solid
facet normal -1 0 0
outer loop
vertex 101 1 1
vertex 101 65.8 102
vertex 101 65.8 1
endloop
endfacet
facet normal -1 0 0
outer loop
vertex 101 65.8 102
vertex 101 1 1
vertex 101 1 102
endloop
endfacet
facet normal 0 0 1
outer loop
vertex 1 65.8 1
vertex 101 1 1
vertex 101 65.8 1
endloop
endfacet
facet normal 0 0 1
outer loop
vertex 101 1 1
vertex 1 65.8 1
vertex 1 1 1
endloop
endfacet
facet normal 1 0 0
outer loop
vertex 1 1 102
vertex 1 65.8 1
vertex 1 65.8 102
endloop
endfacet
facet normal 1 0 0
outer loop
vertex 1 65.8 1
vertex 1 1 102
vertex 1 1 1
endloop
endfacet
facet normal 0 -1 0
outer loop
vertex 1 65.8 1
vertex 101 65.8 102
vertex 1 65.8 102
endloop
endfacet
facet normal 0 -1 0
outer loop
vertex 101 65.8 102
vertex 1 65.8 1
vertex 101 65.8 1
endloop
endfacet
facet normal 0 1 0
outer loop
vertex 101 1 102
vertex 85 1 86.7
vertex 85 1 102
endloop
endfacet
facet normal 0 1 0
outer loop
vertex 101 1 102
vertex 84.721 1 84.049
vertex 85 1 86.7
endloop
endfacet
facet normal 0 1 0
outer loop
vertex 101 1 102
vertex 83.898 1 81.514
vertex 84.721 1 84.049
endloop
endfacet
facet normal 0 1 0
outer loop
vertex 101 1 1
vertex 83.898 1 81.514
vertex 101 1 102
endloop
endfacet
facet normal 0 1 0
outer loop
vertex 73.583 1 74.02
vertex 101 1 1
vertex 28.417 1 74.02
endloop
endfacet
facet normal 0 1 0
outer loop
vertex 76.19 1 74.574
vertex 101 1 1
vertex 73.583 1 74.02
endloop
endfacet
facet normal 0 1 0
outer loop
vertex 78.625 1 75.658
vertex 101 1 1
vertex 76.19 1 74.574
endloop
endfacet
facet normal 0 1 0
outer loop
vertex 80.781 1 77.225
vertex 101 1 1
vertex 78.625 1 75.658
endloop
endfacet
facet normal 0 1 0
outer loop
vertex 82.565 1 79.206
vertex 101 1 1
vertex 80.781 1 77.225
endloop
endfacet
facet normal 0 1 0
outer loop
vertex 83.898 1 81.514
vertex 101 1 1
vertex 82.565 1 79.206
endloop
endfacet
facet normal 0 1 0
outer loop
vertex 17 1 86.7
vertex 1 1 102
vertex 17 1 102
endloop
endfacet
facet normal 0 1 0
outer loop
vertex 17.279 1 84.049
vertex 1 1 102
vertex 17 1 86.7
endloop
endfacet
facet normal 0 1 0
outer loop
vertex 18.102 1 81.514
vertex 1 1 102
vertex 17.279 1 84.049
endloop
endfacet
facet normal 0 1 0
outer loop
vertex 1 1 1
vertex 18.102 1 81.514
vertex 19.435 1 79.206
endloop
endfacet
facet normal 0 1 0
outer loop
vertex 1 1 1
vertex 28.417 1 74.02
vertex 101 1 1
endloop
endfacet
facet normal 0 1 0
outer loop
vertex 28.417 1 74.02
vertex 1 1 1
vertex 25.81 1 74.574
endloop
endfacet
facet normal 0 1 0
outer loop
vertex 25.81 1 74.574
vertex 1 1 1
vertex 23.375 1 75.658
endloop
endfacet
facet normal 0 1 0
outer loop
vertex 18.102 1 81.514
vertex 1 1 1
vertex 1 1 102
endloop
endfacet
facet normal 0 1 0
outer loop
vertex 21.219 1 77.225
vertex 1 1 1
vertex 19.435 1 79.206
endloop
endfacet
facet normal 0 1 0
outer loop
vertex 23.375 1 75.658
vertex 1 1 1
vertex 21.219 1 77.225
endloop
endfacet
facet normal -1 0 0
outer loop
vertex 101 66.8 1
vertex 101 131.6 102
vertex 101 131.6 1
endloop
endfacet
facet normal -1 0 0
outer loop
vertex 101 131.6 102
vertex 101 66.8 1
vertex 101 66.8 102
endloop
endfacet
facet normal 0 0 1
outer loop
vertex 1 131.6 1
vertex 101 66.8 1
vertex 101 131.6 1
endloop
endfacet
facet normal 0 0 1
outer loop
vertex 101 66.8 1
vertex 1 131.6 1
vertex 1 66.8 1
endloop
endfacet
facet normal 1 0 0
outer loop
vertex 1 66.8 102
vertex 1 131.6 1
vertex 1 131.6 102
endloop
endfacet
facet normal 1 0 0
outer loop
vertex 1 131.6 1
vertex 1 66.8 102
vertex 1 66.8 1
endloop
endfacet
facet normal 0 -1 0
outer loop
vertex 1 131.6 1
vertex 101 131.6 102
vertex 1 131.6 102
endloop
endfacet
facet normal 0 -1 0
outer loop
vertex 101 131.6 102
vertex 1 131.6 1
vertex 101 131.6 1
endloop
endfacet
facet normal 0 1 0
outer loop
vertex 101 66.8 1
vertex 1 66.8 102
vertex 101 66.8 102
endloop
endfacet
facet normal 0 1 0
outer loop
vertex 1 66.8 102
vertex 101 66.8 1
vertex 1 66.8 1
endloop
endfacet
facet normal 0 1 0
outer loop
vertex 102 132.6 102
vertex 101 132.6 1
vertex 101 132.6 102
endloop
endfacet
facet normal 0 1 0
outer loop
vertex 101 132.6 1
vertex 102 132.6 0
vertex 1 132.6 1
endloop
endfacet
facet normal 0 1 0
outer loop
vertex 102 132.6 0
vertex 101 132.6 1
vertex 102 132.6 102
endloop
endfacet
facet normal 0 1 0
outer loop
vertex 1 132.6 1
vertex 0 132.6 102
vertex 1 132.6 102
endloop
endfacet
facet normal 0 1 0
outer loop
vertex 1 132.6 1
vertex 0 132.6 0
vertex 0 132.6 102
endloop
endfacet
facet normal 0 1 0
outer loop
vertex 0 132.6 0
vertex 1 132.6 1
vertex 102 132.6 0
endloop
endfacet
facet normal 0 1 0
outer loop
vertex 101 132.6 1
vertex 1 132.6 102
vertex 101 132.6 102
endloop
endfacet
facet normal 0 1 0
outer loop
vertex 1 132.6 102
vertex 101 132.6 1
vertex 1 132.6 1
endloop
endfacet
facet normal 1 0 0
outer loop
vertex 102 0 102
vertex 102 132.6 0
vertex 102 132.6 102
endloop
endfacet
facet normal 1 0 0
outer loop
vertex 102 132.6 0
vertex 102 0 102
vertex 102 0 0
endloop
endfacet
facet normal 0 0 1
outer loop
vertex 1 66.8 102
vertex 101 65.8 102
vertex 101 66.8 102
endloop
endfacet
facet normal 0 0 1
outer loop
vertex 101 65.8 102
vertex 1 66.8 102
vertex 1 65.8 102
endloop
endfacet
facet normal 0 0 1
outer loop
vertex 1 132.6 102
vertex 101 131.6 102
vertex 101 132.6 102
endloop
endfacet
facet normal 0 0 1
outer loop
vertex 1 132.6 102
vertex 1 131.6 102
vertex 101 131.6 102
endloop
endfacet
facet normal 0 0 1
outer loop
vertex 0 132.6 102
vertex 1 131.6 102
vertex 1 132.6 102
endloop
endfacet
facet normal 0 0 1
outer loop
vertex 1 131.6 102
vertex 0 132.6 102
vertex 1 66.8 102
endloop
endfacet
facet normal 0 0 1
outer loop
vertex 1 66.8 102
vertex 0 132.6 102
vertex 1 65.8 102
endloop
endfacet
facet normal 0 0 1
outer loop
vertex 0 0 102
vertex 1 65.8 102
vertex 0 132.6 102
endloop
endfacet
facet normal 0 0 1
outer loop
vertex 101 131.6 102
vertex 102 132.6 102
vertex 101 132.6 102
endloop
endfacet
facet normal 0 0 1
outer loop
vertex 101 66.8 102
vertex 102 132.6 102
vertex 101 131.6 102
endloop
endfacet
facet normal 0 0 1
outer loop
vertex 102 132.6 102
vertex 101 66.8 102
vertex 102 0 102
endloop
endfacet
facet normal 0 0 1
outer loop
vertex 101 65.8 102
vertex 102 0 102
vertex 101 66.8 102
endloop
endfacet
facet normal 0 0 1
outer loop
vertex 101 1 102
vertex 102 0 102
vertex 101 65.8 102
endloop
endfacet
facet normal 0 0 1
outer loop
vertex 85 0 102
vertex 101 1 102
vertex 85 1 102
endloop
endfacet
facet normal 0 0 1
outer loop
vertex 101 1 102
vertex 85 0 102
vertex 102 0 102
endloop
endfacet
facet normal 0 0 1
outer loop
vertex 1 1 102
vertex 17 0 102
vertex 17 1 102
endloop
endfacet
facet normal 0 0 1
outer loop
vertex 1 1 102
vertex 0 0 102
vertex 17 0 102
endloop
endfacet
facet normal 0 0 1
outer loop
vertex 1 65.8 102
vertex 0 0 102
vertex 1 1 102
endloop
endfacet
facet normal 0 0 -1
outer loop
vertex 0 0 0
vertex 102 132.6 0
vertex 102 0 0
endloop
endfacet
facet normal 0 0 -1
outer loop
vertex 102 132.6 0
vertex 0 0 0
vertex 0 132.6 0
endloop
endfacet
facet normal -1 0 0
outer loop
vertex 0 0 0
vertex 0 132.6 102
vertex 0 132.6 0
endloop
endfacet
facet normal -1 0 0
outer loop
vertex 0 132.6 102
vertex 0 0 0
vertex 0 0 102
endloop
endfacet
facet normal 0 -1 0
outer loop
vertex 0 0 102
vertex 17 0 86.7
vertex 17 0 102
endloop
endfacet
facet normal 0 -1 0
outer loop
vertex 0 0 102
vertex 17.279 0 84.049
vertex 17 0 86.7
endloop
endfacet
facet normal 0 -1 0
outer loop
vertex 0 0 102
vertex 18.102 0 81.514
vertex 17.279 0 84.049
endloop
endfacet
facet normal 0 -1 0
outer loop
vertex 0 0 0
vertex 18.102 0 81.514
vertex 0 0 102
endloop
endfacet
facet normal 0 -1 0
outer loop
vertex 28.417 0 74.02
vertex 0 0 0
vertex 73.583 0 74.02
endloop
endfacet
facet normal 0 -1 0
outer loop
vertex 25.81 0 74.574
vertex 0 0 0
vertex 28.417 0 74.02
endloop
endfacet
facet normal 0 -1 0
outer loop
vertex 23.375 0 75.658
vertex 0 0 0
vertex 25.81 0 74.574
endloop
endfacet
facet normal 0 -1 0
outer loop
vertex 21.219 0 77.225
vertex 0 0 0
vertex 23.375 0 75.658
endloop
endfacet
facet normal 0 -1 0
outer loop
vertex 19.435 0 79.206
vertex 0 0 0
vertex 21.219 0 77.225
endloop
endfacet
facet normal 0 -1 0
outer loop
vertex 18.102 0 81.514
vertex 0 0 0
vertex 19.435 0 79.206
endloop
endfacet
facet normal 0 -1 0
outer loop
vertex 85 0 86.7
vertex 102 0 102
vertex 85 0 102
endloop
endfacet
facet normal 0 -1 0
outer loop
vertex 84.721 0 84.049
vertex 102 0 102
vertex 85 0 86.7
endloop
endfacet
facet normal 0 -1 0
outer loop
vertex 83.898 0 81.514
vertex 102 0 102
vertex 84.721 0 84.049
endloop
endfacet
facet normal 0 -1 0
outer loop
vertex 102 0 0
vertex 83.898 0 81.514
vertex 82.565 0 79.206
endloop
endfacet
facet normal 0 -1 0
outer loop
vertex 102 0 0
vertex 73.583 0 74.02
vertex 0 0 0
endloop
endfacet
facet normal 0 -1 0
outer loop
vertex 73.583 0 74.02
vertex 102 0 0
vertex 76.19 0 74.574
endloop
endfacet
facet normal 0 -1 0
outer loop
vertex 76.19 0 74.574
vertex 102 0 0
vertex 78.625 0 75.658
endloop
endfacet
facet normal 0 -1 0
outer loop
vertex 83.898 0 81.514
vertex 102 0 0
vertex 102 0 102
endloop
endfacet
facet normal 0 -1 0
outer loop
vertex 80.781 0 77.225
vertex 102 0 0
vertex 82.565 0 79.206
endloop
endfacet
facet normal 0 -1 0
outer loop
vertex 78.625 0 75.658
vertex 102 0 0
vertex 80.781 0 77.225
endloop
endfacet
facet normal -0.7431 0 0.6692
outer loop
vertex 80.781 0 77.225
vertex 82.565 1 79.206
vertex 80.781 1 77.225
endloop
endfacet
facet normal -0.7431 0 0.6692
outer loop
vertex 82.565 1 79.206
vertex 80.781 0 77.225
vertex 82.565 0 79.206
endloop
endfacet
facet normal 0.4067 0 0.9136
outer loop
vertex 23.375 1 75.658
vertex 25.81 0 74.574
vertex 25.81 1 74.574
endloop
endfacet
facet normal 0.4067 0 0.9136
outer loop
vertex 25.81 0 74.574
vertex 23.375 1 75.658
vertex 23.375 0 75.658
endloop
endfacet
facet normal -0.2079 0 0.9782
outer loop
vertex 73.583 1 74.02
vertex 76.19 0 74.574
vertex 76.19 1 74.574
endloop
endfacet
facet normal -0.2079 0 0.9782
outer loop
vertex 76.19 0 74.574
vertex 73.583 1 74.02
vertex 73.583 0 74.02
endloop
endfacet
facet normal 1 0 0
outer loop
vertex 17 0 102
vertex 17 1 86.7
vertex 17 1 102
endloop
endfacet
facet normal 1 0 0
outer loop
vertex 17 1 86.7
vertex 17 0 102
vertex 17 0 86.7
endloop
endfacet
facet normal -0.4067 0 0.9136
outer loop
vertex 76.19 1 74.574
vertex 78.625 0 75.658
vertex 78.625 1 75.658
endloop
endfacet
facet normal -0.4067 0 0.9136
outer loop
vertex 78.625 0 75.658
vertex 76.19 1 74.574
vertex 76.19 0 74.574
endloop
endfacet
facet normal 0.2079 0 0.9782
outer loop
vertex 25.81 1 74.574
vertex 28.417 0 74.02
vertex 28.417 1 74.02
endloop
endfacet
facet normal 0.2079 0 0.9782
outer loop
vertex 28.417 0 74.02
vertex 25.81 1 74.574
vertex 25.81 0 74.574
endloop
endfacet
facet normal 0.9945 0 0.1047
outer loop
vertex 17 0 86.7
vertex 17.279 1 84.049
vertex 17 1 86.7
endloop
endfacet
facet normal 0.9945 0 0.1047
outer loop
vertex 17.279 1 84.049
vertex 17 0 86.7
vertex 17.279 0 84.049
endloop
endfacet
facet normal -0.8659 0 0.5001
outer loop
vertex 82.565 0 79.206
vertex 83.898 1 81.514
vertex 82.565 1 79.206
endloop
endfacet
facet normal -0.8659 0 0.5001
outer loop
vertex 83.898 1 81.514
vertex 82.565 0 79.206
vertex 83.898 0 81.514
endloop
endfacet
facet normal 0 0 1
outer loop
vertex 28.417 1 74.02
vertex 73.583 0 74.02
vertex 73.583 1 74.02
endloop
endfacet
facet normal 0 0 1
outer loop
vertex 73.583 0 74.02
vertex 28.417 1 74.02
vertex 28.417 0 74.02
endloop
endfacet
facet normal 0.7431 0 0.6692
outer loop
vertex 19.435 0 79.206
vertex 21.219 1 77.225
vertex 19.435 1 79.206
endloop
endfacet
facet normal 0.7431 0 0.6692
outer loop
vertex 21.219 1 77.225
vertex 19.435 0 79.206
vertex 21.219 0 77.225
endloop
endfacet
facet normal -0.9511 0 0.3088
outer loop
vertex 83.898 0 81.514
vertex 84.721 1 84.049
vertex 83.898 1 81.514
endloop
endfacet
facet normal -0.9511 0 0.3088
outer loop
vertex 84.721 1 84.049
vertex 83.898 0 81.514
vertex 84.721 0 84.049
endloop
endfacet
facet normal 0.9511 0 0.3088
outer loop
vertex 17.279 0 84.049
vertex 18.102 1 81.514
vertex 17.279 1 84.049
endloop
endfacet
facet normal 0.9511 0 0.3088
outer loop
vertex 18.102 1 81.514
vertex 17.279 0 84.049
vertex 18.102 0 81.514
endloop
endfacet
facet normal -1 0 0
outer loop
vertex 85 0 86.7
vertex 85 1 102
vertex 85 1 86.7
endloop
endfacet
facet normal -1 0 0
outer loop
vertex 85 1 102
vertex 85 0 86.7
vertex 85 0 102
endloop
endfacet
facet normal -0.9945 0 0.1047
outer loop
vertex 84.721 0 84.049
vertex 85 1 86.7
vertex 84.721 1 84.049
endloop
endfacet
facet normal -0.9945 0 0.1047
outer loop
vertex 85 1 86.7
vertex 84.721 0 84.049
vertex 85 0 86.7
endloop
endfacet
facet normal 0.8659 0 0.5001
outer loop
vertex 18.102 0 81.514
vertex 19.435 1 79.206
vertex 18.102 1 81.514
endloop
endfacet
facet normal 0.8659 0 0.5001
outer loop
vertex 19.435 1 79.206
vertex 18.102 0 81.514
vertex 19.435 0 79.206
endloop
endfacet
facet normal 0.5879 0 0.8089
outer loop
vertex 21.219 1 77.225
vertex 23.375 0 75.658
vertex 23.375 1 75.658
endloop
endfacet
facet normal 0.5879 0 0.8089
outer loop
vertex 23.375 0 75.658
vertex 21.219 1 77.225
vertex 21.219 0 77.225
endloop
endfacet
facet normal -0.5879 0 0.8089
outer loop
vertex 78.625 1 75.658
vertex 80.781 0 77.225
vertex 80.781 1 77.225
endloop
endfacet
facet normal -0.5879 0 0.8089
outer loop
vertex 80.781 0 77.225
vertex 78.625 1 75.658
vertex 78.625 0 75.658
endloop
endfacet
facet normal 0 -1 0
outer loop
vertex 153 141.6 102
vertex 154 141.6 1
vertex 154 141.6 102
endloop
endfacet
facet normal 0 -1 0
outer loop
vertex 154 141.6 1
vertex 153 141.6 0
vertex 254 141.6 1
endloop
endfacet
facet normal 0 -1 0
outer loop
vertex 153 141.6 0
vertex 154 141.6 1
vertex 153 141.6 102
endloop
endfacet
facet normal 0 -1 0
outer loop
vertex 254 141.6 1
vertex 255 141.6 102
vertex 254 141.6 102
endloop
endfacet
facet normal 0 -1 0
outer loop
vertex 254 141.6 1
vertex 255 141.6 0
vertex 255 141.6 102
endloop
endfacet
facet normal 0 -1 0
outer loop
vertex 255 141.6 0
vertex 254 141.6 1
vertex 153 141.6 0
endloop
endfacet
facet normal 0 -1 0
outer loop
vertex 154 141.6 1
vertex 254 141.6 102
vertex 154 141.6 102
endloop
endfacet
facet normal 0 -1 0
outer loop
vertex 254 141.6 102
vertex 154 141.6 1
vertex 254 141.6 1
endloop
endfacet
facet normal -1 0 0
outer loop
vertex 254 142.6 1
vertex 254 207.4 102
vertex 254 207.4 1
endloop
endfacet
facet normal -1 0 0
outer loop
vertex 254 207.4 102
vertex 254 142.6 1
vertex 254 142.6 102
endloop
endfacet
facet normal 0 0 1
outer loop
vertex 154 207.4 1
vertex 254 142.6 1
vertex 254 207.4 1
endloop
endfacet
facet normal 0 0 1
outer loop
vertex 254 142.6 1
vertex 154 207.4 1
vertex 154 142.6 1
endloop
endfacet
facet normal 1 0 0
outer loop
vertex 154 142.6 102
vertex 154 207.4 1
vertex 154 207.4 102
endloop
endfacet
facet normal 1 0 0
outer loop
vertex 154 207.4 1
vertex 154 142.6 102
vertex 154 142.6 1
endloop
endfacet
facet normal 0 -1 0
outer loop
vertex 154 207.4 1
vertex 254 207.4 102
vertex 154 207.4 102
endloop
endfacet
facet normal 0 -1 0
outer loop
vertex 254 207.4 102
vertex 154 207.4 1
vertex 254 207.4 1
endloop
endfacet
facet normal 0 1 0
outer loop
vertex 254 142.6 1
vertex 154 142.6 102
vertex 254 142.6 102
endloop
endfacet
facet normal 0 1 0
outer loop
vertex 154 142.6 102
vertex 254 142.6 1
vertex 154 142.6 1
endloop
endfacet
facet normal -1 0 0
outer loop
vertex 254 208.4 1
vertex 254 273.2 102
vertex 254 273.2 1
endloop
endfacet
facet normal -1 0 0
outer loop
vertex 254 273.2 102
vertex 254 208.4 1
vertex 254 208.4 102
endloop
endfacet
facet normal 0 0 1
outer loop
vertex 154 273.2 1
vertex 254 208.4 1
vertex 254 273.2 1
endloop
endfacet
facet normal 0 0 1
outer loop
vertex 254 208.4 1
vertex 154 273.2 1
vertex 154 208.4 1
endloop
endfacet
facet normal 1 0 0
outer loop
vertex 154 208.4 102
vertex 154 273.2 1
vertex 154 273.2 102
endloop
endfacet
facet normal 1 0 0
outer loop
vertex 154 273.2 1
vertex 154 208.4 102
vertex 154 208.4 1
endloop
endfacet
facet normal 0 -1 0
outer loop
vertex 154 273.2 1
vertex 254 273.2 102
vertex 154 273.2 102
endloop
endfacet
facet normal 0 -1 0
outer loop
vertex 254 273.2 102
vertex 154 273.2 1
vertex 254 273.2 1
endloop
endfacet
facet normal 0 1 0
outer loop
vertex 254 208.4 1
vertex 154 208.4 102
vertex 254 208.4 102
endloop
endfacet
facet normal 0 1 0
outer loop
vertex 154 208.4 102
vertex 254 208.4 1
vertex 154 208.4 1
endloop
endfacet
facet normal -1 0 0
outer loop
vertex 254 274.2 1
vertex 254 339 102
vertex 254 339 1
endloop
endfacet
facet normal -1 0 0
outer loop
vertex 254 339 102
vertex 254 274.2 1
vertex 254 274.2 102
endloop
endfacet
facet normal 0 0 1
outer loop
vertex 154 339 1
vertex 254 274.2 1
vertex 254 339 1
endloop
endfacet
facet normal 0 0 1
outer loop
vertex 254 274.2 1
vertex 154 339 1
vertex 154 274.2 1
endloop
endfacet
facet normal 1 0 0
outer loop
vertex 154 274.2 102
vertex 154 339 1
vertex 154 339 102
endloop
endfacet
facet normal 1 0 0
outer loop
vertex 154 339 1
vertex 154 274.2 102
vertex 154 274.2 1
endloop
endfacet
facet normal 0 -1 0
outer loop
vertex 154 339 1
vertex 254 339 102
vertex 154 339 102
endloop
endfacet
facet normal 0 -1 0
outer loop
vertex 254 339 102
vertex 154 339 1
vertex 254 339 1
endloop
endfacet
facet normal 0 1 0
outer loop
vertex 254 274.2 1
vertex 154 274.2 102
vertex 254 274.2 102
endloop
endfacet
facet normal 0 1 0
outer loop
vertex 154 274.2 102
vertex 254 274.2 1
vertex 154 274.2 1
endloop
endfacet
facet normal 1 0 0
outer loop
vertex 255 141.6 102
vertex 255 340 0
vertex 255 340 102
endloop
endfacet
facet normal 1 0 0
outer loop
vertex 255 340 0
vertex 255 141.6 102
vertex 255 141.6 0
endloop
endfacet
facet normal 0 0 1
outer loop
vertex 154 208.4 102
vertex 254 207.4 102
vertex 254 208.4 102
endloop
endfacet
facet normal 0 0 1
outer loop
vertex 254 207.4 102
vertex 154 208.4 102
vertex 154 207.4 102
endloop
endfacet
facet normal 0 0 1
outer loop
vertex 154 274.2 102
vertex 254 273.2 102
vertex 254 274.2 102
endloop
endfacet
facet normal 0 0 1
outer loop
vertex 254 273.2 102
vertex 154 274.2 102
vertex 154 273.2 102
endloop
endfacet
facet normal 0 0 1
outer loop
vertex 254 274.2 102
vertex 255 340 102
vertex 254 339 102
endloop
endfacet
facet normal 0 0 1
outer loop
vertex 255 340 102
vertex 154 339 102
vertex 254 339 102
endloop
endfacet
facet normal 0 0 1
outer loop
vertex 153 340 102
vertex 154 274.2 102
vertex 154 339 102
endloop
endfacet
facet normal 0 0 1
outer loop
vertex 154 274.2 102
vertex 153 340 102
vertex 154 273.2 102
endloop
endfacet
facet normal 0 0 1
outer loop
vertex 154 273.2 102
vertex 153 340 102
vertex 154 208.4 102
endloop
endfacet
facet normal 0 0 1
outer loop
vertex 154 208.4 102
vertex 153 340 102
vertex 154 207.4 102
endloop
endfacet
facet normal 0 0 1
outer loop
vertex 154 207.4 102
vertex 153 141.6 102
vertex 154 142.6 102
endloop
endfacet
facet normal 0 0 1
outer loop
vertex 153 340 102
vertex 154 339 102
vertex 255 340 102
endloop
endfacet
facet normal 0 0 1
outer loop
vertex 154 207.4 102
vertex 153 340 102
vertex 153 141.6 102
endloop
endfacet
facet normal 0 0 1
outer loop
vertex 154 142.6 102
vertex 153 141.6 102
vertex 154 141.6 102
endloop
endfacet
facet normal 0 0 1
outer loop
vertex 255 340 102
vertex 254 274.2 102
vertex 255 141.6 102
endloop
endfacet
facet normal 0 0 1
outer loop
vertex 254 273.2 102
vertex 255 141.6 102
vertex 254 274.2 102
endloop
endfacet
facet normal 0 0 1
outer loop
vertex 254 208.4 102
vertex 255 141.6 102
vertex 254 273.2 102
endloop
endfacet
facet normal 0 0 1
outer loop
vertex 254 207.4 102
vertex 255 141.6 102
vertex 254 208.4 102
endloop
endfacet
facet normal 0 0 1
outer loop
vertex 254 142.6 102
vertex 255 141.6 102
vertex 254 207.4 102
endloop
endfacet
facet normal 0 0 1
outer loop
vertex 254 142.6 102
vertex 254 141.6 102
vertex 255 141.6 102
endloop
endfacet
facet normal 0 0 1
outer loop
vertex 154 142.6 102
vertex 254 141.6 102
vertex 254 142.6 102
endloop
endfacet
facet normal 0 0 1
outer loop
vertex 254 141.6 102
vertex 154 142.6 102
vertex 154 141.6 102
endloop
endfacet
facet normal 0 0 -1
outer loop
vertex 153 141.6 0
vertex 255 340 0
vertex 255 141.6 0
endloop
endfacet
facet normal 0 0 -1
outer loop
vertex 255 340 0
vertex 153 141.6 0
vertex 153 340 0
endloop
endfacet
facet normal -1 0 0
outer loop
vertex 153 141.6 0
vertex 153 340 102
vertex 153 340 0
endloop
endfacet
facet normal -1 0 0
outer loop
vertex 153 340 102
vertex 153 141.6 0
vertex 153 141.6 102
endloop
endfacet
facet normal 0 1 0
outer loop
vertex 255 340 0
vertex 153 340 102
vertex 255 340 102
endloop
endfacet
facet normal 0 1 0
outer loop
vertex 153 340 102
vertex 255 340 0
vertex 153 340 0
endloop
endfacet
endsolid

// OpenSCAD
wine_rack_depth = 330;
wine_rack_width = 102;
wine_rack_height = 102;



module winerackit(places = 4, wall = 2) {
rendering_fix  = 1;
    difference(){
        cube([wine_rack_width, wine_rack_depth, wine_rack_height]);
        
        d = (wine_rack_depth - wall - wall - ((places - 1) * wall)) / places;
        
        union(){
            for(i = [1:places]) {
                translate([wall, (wall * i ) + (d * (i - 1)), wall])
                    color("red")
                    cube([102 - wall - wall, d, 
                          102 - wall + rendering_fix]);
            }
        }
            
        // cutout for human hands
        translate([0, rendering_fix, 0]) hull() {
        z = wine_rack_width / 1.5;
        translate([(wine_rack_width - z) / 2, -wall, wine_rack_height * 0.85])
        color("blue")
        cube([z, wall * 2, wine_rack_height / 4]);
        translate([(wine_rack_width - z) / 2 + wine_rack_height / 8,
            wall,
            wine_rack_height * 0.85
        ])
        color("blue")
        rotate([90, 0, 0])
        cylinder(h = wall * 2, d = wine_rack_height / 4);

        translate([wine_rack_width - ((wine_rack_width - z) / 2 + wine_rack_height / 8),
            wall,
            wine_rack_height * 0.85
        ])
        color("green")
        rotate([90, 0, 0])
        cylinder(h = wall * 2, d = wine_rack_height / 4);
        }


    }

}

pla = 0.4;



module split_winerackit(places = 4, wall=2){
    
    d = (wine_rack_depth - wall - wall - ((places - 1) * wall)) / places;
    echo(d);
    
    places_a = floor(places / 2);
    places_b = places - places_a;
    
    echo(places_a, places_b);
    first_half_depth = (wall * (places_a + 1)) + (d * (places_a ));
    second_half_depth = (wall * (places_b + 1)) + (d * (places_b ));
    
    color("red") intersection() {
        cube(first_half_depth);
        winerackit(places=places, wall=wall);
    }
    
    translate([wine_rack_width * 1.5,10,0]) color("white") intersection() {
        translate([0, first_half_depth-  wall, 0]) cube(second_half_depth + wall);
        winerackit(places=places, wall=wall);
    }
}

split_winerackit(places=5, wall=1);


// boxes - inner thingies 
// 1 - 0
// 2 - 1
// 3 - 2
// subtract (n-1) * width of divider.
